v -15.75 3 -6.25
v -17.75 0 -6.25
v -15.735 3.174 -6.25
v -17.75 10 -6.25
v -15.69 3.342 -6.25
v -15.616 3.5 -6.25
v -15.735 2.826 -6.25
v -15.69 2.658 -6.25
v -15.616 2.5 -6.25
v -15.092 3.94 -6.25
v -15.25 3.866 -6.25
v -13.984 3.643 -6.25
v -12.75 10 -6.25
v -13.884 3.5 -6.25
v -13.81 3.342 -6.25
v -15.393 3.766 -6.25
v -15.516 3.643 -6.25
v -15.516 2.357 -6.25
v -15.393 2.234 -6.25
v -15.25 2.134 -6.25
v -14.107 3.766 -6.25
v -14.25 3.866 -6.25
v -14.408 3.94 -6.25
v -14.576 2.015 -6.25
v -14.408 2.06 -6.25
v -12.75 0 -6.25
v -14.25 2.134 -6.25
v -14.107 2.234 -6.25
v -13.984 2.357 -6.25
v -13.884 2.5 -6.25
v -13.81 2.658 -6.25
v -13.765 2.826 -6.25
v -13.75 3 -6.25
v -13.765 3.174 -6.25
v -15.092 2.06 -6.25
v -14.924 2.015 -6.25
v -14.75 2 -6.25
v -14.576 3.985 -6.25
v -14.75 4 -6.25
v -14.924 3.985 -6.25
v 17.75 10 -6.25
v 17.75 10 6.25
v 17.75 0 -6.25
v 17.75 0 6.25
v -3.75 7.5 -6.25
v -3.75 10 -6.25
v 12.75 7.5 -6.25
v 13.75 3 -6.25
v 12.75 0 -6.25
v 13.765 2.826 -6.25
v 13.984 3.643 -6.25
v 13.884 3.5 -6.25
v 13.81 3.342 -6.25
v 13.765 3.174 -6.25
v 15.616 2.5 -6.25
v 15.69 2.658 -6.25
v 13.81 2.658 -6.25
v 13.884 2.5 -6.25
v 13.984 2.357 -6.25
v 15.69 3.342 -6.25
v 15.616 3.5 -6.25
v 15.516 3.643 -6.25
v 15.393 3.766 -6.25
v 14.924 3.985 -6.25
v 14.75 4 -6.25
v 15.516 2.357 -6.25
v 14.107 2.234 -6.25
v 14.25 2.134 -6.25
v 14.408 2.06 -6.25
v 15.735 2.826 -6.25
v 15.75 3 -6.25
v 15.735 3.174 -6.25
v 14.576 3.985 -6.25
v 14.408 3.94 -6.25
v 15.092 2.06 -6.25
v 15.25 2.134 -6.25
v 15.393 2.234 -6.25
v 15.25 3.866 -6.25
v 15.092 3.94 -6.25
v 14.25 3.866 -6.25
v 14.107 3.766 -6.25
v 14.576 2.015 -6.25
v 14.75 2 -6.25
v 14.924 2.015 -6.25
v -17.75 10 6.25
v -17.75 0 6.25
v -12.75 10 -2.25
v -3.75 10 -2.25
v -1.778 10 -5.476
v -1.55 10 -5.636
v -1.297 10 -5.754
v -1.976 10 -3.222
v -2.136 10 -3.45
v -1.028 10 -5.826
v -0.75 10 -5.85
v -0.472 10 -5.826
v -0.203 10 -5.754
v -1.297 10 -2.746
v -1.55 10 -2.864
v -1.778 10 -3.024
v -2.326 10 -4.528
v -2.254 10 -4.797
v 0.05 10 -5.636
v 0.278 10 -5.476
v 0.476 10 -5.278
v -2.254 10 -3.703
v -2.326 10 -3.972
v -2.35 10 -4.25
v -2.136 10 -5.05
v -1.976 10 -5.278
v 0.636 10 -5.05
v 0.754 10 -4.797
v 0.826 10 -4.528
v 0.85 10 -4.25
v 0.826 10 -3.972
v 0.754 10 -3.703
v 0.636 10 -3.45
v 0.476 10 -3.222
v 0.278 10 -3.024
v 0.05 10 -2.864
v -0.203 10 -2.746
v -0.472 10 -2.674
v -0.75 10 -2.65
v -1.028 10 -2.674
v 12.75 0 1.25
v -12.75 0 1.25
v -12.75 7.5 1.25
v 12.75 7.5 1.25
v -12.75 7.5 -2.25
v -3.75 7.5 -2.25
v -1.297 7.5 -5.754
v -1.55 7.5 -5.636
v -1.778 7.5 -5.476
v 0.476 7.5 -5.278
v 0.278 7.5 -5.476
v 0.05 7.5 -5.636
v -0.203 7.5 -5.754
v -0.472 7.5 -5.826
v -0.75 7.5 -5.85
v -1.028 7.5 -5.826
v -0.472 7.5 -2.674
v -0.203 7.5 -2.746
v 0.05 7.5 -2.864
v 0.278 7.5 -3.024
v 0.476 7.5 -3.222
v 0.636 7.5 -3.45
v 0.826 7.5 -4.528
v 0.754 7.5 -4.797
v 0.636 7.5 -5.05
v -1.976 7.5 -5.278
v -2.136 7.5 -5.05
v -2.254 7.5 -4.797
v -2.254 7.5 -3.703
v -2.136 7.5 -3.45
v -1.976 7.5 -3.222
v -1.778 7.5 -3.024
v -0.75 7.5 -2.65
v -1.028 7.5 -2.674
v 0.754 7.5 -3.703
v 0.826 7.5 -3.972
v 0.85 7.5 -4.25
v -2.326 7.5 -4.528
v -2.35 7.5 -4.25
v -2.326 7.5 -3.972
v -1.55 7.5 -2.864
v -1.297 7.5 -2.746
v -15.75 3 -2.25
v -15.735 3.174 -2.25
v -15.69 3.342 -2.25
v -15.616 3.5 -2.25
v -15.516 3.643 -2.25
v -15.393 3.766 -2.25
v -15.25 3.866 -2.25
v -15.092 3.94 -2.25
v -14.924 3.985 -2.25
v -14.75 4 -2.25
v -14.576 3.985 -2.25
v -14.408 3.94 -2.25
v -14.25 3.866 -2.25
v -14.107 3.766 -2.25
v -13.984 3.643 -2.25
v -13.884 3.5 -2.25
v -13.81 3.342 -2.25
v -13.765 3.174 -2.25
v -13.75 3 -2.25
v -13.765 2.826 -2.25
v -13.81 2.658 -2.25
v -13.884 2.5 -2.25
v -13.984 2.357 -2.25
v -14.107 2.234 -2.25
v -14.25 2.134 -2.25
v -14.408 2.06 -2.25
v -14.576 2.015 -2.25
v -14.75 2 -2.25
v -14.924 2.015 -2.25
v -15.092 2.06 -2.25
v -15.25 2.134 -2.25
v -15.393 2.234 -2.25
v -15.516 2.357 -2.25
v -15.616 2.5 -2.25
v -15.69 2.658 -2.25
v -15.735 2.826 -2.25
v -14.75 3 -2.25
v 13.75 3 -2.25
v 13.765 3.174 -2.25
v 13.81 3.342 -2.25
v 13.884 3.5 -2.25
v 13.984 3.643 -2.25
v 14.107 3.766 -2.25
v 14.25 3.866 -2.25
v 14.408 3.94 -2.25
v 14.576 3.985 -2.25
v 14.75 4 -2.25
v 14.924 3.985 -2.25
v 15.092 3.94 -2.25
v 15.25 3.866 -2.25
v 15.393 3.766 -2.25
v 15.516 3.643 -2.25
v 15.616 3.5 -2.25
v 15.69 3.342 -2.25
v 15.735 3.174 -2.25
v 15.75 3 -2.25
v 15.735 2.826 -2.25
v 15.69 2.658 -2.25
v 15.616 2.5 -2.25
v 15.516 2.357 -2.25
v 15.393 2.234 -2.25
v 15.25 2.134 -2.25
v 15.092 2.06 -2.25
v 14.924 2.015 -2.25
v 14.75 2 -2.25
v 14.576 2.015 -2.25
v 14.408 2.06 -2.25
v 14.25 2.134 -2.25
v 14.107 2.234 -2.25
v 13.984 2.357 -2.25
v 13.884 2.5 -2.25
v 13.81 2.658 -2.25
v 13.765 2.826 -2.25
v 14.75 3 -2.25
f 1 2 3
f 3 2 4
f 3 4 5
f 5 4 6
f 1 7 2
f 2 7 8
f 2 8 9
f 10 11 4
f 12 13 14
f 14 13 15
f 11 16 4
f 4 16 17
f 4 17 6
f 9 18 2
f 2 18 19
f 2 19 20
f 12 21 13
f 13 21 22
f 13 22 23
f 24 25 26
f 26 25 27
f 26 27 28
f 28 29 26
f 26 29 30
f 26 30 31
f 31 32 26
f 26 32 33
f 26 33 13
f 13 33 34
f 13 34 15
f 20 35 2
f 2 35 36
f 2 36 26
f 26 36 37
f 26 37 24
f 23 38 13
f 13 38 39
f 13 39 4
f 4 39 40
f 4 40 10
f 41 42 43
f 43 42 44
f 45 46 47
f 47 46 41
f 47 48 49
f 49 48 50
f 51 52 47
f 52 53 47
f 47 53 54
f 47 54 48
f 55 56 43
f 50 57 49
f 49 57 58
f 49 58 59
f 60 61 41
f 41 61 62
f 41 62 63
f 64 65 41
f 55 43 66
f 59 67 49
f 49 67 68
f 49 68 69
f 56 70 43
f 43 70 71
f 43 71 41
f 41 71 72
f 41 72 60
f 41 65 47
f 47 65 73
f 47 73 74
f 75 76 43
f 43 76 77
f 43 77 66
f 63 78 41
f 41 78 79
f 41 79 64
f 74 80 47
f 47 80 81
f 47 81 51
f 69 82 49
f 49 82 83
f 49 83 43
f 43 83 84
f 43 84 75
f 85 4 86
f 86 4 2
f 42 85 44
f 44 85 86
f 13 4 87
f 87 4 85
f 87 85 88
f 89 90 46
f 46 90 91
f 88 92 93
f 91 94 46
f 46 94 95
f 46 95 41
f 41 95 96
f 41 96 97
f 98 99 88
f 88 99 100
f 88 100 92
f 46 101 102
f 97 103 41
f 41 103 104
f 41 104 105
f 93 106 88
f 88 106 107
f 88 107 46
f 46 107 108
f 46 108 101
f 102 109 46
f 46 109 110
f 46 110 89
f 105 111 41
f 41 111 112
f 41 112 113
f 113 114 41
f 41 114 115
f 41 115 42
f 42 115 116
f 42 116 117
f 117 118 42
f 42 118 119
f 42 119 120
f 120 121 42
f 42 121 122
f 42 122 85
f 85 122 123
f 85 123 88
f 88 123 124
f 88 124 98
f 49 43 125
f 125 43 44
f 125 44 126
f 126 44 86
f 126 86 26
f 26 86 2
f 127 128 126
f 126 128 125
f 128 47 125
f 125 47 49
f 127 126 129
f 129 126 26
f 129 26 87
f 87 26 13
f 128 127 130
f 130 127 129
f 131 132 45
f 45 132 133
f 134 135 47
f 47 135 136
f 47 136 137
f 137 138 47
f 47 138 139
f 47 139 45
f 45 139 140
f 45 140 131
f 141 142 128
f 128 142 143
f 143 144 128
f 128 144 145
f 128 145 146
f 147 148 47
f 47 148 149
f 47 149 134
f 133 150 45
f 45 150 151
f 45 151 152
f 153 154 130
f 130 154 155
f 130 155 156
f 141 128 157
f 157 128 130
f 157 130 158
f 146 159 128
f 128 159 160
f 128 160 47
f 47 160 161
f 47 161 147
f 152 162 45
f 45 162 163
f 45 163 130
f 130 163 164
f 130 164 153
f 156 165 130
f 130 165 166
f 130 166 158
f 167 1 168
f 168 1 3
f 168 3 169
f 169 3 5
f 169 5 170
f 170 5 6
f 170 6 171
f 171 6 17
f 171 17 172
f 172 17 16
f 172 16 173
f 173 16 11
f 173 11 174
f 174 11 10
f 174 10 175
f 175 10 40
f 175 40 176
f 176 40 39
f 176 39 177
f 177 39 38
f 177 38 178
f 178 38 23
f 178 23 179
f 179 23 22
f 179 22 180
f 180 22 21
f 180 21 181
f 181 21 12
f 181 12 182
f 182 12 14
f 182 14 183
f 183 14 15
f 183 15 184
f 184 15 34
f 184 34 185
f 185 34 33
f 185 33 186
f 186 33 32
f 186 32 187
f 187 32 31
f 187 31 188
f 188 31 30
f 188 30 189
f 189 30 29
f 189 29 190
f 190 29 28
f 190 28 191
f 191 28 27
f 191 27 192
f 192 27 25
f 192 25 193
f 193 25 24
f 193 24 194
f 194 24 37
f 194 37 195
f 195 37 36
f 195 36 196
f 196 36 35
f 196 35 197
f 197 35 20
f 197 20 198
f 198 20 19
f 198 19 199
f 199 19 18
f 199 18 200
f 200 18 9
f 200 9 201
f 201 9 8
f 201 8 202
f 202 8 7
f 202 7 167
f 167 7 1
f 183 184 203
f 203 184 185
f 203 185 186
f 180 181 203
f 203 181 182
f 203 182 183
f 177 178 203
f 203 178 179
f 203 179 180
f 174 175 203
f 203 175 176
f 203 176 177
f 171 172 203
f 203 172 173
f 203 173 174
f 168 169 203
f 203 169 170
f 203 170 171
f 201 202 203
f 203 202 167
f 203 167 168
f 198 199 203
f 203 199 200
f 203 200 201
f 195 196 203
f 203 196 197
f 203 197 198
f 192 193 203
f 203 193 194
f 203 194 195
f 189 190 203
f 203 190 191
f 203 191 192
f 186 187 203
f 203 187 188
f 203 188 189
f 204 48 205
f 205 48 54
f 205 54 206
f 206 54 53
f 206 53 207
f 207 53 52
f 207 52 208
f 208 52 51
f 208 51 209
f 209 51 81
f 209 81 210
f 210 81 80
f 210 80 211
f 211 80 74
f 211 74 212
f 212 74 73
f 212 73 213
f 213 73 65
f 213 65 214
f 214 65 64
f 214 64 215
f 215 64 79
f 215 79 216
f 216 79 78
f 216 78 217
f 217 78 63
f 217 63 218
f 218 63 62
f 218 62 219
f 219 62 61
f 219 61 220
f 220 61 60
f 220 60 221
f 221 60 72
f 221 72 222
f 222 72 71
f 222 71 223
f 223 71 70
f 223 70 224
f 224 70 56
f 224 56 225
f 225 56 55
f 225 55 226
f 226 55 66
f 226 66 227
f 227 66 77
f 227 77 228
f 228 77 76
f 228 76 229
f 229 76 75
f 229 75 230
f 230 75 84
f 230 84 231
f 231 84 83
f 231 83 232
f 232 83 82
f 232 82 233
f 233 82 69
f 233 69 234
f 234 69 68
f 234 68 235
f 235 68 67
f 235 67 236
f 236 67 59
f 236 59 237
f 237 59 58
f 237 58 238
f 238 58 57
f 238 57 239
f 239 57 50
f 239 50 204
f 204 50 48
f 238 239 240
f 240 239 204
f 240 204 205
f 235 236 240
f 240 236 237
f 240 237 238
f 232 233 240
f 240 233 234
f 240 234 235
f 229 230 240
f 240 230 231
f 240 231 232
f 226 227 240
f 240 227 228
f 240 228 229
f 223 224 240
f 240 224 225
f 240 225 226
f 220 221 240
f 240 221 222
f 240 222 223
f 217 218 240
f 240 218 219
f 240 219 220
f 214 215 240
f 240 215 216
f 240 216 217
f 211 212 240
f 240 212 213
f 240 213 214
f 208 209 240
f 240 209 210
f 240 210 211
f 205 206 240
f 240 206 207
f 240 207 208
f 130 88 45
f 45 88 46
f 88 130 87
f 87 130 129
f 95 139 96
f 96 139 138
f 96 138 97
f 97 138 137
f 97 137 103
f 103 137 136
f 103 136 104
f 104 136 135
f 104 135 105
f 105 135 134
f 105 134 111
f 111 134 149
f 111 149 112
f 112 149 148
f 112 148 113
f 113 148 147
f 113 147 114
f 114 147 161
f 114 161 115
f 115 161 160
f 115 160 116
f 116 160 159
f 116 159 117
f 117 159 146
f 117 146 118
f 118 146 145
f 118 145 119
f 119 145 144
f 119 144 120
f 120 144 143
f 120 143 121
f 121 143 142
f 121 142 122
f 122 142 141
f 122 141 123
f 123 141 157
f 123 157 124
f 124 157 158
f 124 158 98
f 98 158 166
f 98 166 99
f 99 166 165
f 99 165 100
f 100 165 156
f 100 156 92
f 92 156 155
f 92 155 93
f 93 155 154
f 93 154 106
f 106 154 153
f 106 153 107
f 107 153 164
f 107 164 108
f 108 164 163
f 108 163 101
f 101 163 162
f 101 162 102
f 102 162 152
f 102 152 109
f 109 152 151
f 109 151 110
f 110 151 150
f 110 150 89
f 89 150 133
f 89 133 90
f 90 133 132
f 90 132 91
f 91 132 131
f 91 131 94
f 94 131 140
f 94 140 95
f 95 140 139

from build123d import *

# Parameters (mm, degrees)
SKETCH1_W                      = 35.5
SKETCH1_H                      = 12.5
BOSS_EXTRUDE1_DEPTH            = 10
SKETCH2_W                      = 25.5
SKETCH2_H                      = 7.5
CUT_EXTRUDE1_DEPTH             = 7.5
SKETCH4_R                      = 1
CUT_EXTRUDE2_DEPTH             = 4
SKETCH6_W                      = 9
SKETCH6_H                      = 2.5
CUT_EXTRUDE3_DEPTH             = 4
CUT_EXTRUDE4_REACH             = 12
SKETCH7_R                      = 1.6
CUT_EXTRUDE4_DIRECTION_2_DEPTH = 1


with BuildPart() as part:
    # Sketch1 → Boss-Extrude1 (new body)
    with BuildSketch(Plane(origin=(0, 0, 0), x_dir=(1, 0, 0), z_dir=(0, 1, 0))):
        Rectangle(SKETCH1_W, SKETCH1_H)
    extrude(amount=BOSS_EXTRUDE1_DEPTH)

    # Sketch2 → Cut-Extrude1 (cut)
    with BuildSketch(Plane.XZ):
        with Locations((0, -2.5)):
            Rectangle(SKETCH2_W, SKETCH2_H)
    extrude(amount=-CUT_EXTRUDE1_DEPTH, mode=Mode.SUBTRACT)

    # Sketch4 → Cut-Extrude2 (cut)
    with BuildSketch(Plane(origin=(0, 0, -6.25), x_dir=(-1, 0, 0), z_dir=(0, 0, -1))):
        with Locations((-14.75, 3)):
            Circle(SKETCH4_R)
        with Locations((14.75, 3)):
            Circle(SKETCH4_R)
    extrude(amount=-CUT_EXTRUDE2_DEPTH, mode=Mode.SUBTRACT)

    # Sketch6 → Cut-Extrude3 (cut)
    with BuildSketch(Plane(origin=(0, 0, -6.25), x_dir=(-1, 0, 0), z_dir=(0, 0, -1))):
        with Locations((8.25, 8.75)):
            Rectangle(SKETCH6_W, SKETCH6_H)
    extrude(amount=-CUT_EXTRUDE3_DEPTH, mode=Mode.SUBTRACT)

    # Sketch7 → Cut-Extrude4 (cut, up to next)
    with BuildSketch(Plane(origin=(0, 10, 0), x_dir=(1, 0, 0), z_dir=(0, 1, 0)), mode=Mode.PRIVATE) as cut_extrude4_sk1:
        with Locations((-0.75, 4.25)):
            Circle(SKETCH7_R)
    cut_extrude4_tool1 = extrude(cut_extrude4_sk1.sketch, amount=-CUT_EXTRUDE4_REACH, mode=Mode.PRIVATE) & part.part
    add(cut_extrude4_tool1.solids().sort_by_distance((-0.75, 10, -4.25))[0], mode=Mode.SUBTRACT)

    # Sketch7 → Cut-Extrude4 direction 2 (cut)
    with BuildSketch(Plane(origin=(0, 10, 0), x_dir=(1, 0, 0), z_dir=(0, 1, 0))):
        with Locations((-0.75, 4.25)):
            Circle(SKETCH7_R)
    extrude(amount=CUT_EXTRUDE4_DIRECTION_2_DEPTH, mode=Mode.SUBTRACT)


solid = part.part
